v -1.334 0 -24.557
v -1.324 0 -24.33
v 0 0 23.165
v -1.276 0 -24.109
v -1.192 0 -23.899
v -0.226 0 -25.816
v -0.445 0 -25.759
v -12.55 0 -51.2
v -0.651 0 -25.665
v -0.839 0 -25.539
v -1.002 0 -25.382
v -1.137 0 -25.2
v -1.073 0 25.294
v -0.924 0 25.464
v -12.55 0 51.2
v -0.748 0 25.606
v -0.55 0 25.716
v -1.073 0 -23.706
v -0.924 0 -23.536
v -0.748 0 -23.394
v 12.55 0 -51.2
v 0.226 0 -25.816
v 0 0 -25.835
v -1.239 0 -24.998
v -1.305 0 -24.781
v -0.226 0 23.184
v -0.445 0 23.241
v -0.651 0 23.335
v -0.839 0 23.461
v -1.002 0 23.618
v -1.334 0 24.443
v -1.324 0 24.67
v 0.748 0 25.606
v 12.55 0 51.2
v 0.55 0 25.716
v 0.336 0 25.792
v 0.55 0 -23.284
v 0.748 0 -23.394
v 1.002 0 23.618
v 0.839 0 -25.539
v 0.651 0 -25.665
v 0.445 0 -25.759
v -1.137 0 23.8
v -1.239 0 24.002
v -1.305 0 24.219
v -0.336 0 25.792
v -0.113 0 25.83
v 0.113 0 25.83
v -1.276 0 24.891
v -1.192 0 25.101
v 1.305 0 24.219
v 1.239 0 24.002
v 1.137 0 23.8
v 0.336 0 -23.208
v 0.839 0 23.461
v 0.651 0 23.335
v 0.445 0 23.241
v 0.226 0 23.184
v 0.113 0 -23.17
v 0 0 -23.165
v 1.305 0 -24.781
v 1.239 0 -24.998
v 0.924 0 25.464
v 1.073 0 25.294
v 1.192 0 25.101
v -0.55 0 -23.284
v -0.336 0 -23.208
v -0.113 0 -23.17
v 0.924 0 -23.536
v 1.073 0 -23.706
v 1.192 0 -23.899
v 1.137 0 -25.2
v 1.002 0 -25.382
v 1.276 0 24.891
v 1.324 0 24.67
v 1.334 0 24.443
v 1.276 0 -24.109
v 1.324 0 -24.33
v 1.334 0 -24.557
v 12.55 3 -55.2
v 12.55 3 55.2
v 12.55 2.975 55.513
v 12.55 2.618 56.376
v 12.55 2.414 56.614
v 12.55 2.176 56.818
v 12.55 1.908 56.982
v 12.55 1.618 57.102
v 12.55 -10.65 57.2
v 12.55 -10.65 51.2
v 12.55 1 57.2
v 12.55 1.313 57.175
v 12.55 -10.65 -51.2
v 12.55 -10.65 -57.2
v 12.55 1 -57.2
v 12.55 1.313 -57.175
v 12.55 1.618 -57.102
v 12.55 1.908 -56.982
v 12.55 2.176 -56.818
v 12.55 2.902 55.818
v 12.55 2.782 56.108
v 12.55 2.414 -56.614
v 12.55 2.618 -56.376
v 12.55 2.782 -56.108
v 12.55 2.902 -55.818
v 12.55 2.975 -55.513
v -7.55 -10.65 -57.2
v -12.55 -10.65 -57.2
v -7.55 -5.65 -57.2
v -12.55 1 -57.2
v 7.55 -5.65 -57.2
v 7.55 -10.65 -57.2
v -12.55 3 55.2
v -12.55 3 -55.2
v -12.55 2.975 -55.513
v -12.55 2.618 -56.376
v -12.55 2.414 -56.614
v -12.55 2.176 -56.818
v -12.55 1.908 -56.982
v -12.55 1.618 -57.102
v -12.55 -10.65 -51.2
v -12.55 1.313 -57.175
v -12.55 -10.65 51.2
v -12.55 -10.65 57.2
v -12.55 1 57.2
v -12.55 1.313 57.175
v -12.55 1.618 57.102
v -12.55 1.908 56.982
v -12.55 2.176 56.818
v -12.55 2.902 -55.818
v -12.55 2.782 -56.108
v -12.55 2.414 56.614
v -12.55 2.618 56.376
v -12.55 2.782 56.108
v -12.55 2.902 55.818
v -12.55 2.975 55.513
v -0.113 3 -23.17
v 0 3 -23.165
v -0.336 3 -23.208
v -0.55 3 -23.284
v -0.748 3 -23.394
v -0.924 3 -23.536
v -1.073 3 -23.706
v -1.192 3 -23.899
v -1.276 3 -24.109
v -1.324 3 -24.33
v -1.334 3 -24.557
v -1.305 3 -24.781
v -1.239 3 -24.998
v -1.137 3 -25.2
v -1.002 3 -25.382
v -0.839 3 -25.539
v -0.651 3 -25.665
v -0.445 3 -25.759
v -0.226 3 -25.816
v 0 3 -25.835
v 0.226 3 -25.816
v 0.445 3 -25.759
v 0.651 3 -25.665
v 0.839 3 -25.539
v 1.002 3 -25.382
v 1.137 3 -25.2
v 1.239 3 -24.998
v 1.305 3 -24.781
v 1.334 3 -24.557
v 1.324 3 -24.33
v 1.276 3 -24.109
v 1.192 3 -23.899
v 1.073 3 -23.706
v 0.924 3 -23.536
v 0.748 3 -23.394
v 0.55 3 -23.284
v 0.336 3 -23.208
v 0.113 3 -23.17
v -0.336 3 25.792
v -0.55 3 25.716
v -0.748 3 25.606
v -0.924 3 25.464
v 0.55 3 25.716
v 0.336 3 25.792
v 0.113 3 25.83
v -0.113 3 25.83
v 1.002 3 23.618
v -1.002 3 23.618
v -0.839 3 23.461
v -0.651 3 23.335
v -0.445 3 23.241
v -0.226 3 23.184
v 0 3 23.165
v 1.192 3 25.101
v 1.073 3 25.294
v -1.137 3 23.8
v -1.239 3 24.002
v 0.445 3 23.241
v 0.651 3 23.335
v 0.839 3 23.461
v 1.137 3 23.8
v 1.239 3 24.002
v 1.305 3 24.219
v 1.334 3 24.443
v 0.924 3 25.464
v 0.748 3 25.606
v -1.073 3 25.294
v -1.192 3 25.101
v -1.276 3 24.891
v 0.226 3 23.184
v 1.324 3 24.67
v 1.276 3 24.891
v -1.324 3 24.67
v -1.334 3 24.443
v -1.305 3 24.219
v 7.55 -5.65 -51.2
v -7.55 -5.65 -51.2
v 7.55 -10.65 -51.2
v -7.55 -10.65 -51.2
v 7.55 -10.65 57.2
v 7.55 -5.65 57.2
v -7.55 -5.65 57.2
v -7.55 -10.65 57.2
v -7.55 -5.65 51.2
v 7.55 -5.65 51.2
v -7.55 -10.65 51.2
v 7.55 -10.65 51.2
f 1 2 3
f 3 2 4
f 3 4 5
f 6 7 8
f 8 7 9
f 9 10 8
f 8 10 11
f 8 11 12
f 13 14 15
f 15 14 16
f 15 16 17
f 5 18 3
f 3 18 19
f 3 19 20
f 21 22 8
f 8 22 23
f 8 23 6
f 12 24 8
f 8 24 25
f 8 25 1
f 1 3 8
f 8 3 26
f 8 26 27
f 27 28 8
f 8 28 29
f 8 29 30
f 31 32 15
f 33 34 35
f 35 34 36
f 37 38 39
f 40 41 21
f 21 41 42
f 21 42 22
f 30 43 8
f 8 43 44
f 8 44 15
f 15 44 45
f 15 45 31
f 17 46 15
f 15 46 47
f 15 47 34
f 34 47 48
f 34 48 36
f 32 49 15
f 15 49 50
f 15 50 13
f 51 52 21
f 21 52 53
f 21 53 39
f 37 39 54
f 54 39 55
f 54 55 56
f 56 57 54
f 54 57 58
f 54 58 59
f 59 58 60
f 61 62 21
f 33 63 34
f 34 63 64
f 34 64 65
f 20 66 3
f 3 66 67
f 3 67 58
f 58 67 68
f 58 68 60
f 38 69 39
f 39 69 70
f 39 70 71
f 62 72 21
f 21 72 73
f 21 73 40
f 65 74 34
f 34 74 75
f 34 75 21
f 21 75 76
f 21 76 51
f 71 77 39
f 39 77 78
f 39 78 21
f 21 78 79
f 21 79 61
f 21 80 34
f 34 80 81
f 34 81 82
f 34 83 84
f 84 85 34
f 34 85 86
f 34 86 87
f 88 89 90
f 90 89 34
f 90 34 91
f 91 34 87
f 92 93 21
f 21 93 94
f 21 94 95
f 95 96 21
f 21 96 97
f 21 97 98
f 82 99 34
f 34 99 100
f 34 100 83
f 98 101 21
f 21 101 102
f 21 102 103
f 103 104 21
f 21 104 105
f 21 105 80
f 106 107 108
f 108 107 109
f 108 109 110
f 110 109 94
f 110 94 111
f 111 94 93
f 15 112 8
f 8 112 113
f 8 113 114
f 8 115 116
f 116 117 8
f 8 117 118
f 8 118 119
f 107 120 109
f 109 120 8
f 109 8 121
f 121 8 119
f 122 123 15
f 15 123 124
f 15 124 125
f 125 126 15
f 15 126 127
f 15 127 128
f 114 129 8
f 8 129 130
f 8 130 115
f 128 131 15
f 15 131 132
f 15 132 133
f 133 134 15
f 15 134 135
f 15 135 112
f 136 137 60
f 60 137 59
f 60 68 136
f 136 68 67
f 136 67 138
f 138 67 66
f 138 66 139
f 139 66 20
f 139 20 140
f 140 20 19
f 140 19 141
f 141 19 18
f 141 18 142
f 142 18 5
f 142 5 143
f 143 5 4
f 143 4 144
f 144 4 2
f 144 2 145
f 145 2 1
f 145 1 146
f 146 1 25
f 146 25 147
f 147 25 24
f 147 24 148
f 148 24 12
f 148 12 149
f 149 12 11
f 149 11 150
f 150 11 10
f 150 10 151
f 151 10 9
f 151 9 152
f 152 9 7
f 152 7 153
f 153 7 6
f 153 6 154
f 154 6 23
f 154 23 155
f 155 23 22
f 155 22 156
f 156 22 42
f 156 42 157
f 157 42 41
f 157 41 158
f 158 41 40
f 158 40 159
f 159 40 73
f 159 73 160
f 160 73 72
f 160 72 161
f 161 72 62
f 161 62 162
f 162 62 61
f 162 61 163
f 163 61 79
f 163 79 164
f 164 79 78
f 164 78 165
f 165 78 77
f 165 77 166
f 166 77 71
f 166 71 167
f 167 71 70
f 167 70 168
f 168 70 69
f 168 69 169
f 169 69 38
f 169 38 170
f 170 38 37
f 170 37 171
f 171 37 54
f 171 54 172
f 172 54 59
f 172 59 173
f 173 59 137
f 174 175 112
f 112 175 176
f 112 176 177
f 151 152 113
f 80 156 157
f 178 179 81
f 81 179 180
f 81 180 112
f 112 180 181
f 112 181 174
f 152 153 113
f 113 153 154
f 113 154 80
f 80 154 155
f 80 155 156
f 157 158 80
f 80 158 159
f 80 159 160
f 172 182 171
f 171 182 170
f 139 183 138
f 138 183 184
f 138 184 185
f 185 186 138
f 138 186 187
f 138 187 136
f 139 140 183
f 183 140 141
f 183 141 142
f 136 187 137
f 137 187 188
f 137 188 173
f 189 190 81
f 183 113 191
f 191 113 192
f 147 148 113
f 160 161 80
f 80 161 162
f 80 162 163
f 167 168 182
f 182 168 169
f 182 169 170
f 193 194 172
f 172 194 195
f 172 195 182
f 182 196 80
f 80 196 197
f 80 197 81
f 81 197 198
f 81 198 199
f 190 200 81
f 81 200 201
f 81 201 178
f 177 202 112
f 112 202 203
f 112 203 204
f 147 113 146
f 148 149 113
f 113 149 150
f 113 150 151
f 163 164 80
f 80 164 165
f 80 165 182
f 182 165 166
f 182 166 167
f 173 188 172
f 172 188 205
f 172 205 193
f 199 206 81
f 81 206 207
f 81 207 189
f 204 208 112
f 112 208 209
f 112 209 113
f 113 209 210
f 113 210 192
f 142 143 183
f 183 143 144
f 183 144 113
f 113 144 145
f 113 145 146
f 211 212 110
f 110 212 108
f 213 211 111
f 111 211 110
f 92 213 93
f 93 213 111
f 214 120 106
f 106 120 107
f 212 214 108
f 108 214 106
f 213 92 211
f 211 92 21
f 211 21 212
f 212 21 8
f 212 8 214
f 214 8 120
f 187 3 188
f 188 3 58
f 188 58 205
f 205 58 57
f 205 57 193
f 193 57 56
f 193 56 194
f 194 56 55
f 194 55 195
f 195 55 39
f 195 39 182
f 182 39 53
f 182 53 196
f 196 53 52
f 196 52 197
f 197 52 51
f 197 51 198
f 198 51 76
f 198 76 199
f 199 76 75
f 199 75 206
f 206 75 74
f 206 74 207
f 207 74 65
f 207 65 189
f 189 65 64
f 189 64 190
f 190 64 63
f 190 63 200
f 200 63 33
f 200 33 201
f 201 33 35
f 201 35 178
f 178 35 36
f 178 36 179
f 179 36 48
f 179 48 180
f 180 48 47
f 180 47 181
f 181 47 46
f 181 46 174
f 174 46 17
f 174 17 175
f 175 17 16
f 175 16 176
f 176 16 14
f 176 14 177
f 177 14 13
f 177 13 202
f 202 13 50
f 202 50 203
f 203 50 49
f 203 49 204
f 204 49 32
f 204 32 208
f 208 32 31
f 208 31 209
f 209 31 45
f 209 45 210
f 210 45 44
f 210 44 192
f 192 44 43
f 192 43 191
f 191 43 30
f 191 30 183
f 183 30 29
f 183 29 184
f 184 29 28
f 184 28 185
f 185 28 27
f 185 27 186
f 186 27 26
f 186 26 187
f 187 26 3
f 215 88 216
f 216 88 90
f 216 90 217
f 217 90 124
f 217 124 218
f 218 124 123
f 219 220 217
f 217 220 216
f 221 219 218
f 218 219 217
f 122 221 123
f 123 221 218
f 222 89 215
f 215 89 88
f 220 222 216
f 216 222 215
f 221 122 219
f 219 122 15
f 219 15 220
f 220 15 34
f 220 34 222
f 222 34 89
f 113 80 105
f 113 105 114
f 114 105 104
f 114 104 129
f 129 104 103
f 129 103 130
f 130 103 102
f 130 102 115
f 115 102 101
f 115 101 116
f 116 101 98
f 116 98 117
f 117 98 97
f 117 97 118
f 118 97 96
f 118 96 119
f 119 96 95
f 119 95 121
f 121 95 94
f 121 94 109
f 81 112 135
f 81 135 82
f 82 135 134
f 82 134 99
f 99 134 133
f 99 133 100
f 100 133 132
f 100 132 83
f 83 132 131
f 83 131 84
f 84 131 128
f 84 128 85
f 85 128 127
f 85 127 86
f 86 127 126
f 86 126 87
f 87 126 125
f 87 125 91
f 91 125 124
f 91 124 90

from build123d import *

# Parameters (mm, degrees)
SKETCH2_W           = 25.1
SKETCH2_H           = 57.2
SKETCH2_R           = 1.335
BOSS_EXTRUDE1_DEPTH = 3
BOSS_EXTRUDE2_DEPTH = 6
FILLET1_R           = 2


with BuildPart() as part:
    # Sketch2 → Boss-Extrude1 (new body)
    with BuildSketch(Plane(origin=(0, 0, 0), x_dir=(1, 0, 0), z_dir=(0, 1, 0))):
        with Locations((0, 28.6)):
            Rectangle(SKETCH2_W, SKETCH2_H)
        with Locations((0, 24.5)):
            Circle(SKETCH2_R, mode=Mode.SUBTRACT)
    boss_extrude1 = extrude(amount=BOSS_EXTRUDE1_DEPTH)

    # Sketch4 → Boss-Extrude2 (add)
    with BuildSketch(Plane(origin=(0, 0, -57.2), x_dir=(-1, 0, 0), z_dir=(0, 0, -1))):
        Polygon((12.55, 0), (-12.55, 0), (-12.55, -10.65), (-7.55, -10.65), (-7.55, -5.65), (7.55, -5.65), (7.55, -10.65), (12.55, -10.65), align=None)
    boss_extrude2 = extrude(amount=-BOSS_EXTRUDE2_DEPTH)

    # Mirror1: Boss-Extrude1, Boss-Extrude2 across plane
    add(boss_extrude1.mirror(Plane.XY))
    add(boss_extrude2.mirror(Plane.XY))

    # Fillet1
    fillet1_edges = [part.edges().sort_by_distance(p)[0] for p in [
        (0, 3, -57.2),
        (0, 3, 57.2),
    ]]
    fillet(fillet1_edges, radius=FILLET1_R)


solid = part.part
